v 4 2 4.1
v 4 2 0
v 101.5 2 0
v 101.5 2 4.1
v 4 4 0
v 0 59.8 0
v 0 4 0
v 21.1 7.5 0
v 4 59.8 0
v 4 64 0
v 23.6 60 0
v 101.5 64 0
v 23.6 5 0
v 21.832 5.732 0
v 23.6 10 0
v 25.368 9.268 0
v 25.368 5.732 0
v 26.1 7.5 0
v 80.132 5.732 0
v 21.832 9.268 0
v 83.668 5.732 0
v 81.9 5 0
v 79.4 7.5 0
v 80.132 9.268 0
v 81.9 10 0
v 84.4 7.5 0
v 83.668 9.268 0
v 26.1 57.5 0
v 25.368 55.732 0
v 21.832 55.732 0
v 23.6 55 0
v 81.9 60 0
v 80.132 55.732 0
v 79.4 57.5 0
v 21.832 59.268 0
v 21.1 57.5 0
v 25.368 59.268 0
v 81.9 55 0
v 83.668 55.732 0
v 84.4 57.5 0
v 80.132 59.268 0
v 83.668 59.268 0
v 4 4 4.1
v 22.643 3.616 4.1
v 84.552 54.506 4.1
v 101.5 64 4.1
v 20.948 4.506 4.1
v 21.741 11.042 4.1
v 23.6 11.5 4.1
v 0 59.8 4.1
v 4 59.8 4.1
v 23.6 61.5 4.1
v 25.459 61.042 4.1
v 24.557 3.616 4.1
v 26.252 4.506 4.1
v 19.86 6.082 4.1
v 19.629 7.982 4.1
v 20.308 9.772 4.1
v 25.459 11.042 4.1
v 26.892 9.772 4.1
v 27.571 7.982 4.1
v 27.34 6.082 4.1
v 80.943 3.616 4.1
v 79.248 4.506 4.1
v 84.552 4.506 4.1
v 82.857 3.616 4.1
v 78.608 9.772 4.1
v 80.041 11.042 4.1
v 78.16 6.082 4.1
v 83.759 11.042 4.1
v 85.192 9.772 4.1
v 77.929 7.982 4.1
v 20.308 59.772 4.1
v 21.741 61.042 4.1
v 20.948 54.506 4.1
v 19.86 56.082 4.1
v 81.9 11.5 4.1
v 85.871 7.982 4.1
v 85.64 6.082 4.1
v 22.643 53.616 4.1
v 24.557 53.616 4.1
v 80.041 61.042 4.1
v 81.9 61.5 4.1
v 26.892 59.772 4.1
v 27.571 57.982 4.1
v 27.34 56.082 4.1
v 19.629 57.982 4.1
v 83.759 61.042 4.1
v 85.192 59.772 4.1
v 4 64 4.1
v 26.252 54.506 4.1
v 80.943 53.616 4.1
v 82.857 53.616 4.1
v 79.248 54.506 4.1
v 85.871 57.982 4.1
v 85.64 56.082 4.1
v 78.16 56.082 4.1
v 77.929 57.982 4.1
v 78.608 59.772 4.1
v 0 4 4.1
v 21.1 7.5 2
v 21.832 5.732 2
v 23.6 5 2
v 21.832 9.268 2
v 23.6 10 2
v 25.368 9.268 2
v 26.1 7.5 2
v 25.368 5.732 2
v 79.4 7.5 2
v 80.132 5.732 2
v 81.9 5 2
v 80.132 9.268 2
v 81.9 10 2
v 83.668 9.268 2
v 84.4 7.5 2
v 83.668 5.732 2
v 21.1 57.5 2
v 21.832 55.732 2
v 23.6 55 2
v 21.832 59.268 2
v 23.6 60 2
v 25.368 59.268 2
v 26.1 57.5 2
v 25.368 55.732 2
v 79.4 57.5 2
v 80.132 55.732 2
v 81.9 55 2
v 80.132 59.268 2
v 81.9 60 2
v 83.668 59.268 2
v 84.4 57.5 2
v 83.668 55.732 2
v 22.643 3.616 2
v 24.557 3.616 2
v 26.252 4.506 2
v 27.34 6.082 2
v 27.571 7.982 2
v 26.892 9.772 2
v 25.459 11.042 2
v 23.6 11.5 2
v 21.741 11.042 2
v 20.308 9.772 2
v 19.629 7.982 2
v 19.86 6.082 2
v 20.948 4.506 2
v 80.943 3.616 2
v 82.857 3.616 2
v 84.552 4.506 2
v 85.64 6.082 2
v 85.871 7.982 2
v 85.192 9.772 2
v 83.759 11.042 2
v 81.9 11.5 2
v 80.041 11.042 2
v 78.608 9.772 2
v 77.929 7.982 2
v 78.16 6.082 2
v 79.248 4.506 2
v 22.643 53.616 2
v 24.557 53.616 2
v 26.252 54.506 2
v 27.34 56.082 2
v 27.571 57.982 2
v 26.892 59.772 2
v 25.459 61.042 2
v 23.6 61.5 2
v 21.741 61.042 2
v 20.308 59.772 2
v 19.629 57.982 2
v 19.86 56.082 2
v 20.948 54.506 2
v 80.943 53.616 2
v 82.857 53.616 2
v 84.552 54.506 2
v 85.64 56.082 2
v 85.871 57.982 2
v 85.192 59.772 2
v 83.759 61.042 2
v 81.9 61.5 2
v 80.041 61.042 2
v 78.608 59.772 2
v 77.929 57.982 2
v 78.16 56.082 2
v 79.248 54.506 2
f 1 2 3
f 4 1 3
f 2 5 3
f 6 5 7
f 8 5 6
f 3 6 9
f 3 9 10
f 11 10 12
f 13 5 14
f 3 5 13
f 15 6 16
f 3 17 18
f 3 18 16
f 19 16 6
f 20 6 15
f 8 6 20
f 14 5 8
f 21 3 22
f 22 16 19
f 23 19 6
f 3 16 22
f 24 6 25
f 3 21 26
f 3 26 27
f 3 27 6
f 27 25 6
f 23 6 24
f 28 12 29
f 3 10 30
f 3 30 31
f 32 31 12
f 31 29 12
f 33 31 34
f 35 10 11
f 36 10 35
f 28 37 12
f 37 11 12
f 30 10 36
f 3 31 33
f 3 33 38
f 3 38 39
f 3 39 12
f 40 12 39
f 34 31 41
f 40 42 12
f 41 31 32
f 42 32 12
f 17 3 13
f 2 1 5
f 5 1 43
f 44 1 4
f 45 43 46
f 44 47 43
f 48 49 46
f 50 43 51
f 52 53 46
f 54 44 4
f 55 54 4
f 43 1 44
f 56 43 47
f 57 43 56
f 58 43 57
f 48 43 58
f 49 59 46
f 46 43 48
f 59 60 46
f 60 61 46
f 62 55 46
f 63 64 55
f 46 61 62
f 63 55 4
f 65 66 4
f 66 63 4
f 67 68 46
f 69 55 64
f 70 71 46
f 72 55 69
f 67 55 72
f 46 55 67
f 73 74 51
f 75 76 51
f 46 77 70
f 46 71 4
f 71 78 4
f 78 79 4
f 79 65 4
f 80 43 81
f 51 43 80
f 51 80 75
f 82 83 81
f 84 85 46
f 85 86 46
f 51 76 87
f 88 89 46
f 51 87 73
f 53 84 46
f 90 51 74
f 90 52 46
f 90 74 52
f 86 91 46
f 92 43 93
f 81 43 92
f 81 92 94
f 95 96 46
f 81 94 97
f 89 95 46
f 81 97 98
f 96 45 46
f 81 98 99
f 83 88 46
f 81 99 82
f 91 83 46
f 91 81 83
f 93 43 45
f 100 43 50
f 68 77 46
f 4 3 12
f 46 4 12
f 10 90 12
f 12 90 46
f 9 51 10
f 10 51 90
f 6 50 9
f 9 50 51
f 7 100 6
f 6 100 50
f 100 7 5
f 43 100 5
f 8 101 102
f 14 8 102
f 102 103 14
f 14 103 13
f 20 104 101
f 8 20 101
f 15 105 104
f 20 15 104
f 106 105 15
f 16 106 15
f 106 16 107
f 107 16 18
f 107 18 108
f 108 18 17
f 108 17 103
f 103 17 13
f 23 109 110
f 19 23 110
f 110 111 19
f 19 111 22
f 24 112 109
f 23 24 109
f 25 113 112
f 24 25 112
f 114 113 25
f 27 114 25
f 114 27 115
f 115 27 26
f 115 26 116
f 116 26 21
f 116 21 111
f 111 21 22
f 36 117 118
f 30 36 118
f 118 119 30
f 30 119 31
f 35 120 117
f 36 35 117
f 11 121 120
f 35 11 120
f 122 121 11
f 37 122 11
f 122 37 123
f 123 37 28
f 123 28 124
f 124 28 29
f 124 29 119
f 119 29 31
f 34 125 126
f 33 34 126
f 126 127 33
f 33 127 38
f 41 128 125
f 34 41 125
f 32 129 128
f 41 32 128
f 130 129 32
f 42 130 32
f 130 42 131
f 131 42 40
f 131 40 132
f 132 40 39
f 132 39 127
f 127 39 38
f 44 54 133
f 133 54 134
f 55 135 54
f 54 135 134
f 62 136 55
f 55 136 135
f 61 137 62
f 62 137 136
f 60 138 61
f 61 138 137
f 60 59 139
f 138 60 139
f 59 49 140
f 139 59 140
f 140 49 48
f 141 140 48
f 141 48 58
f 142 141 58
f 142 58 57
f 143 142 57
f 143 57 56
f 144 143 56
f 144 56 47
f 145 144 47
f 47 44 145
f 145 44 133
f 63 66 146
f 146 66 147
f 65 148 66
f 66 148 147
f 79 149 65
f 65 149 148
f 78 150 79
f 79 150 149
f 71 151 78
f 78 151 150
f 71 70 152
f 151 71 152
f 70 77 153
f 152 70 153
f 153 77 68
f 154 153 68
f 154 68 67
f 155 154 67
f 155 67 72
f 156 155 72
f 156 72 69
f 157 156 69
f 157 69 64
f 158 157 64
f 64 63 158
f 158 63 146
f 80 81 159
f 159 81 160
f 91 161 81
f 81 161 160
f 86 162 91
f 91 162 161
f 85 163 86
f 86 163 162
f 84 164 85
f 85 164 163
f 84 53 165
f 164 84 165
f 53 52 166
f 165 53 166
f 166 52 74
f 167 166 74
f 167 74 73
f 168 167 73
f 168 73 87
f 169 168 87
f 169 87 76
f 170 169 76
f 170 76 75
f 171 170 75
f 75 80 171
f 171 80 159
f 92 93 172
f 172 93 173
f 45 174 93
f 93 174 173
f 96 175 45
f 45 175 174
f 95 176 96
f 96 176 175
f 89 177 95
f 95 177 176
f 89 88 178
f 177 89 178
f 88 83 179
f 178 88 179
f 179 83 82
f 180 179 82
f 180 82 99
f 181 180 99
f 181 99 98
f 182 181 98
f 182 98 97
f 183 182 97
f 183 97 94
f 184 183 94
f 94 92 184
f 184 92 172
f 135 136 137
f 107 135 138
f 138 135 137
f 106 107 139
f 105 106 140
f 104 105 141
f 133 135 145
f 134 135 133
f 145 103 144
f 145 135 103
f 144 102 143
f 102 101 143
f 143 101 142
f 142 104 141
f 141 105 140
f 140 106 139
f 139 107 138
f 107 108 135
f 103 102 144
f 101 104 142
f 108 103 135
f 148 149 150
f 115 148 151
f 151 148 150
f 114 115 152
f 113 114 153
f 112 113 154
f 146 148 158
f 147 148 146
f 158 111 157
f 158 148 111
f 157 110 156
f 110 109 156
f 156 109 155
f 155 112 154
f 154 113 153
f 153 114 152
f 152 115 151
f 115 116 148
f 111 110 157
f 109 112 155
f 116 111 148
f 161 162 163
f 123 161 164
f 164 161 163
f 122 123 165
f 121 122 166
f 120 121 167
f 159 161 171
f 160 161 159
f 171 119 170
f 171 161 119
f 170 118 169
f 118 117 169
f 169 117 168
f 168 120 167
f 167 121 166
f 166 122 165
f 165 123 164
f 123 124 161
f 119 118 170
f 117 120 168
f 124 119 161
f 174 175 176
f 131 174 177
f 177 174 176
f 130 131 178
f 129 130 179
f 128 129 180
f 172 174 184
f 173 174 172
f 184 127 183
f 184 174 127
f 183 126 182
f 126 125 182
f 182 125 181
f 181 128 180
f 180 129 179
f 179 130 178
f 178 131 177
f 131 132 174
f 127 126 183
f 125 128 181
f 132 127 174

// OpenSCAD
batX = 0;//22.4Ancho frente
batY = 21.4;//Alto frente
batZ = 90.5;//Profundo


pared = 4;
pared2 = 2*pared;
medPared = pared/2;

raspX = 58;
raspY = 18;
raspZ = 84.5;

h = batY+pared2;

mainAreaX = raspX+batX+pared2; 
mainAreaY = batY+pared2;
mainAreaZ = batZ+pared+5+4;

mainAreaIntX = mainAreaX-pared2;
mainAreaIntY = mainAreaY-pared;
mainAreaIntZ = mainAreaZ-pared;

x1 = pared+3.5;
z1 = 23.6;
x2 = x1+50;
x3 = pared+3.5;
z3 = 81.9;

cejaHorPosX = mainAreaX-batX-pared;
cejaVertPosX = mainAreaX-pared-2;
torH = batY+pared;


rotate([90,0,90])
doALl();



module doALl(){
difference()
{
	translate([medPared,0,pared])
	doTop();	

	translate([0,-1,0])
	baseBatTorn(2.5);

	translate([0,2,0])
	baseBatTorn(4);

}
}

module doTop()
{
	translate([2,0,-4])
	cube([
			mainAreaX-pared-6.2,
			pared+0.1,
			mainAreaZ-pared2+medPared
	  	]);
	cube([
			mainAreaX-pared,
			pared+0.1,
			mainAreaZ-pared2+medPared
	  	]);
}



module baseBatTorn(r)
{
//Tornillos
translate([x1,0,z1])
tornCyl(r);
translate([x2,0,z1])
tornCyl(r);
translate([x1,0,z3])
tornCyl(r);
translate([x2,0,z3])
tornCyl(r);
}











module tornCyl(rad)
{
	rotate([-90,0,0])
	{
		cylinder(r=rad,torH);
	}
}
